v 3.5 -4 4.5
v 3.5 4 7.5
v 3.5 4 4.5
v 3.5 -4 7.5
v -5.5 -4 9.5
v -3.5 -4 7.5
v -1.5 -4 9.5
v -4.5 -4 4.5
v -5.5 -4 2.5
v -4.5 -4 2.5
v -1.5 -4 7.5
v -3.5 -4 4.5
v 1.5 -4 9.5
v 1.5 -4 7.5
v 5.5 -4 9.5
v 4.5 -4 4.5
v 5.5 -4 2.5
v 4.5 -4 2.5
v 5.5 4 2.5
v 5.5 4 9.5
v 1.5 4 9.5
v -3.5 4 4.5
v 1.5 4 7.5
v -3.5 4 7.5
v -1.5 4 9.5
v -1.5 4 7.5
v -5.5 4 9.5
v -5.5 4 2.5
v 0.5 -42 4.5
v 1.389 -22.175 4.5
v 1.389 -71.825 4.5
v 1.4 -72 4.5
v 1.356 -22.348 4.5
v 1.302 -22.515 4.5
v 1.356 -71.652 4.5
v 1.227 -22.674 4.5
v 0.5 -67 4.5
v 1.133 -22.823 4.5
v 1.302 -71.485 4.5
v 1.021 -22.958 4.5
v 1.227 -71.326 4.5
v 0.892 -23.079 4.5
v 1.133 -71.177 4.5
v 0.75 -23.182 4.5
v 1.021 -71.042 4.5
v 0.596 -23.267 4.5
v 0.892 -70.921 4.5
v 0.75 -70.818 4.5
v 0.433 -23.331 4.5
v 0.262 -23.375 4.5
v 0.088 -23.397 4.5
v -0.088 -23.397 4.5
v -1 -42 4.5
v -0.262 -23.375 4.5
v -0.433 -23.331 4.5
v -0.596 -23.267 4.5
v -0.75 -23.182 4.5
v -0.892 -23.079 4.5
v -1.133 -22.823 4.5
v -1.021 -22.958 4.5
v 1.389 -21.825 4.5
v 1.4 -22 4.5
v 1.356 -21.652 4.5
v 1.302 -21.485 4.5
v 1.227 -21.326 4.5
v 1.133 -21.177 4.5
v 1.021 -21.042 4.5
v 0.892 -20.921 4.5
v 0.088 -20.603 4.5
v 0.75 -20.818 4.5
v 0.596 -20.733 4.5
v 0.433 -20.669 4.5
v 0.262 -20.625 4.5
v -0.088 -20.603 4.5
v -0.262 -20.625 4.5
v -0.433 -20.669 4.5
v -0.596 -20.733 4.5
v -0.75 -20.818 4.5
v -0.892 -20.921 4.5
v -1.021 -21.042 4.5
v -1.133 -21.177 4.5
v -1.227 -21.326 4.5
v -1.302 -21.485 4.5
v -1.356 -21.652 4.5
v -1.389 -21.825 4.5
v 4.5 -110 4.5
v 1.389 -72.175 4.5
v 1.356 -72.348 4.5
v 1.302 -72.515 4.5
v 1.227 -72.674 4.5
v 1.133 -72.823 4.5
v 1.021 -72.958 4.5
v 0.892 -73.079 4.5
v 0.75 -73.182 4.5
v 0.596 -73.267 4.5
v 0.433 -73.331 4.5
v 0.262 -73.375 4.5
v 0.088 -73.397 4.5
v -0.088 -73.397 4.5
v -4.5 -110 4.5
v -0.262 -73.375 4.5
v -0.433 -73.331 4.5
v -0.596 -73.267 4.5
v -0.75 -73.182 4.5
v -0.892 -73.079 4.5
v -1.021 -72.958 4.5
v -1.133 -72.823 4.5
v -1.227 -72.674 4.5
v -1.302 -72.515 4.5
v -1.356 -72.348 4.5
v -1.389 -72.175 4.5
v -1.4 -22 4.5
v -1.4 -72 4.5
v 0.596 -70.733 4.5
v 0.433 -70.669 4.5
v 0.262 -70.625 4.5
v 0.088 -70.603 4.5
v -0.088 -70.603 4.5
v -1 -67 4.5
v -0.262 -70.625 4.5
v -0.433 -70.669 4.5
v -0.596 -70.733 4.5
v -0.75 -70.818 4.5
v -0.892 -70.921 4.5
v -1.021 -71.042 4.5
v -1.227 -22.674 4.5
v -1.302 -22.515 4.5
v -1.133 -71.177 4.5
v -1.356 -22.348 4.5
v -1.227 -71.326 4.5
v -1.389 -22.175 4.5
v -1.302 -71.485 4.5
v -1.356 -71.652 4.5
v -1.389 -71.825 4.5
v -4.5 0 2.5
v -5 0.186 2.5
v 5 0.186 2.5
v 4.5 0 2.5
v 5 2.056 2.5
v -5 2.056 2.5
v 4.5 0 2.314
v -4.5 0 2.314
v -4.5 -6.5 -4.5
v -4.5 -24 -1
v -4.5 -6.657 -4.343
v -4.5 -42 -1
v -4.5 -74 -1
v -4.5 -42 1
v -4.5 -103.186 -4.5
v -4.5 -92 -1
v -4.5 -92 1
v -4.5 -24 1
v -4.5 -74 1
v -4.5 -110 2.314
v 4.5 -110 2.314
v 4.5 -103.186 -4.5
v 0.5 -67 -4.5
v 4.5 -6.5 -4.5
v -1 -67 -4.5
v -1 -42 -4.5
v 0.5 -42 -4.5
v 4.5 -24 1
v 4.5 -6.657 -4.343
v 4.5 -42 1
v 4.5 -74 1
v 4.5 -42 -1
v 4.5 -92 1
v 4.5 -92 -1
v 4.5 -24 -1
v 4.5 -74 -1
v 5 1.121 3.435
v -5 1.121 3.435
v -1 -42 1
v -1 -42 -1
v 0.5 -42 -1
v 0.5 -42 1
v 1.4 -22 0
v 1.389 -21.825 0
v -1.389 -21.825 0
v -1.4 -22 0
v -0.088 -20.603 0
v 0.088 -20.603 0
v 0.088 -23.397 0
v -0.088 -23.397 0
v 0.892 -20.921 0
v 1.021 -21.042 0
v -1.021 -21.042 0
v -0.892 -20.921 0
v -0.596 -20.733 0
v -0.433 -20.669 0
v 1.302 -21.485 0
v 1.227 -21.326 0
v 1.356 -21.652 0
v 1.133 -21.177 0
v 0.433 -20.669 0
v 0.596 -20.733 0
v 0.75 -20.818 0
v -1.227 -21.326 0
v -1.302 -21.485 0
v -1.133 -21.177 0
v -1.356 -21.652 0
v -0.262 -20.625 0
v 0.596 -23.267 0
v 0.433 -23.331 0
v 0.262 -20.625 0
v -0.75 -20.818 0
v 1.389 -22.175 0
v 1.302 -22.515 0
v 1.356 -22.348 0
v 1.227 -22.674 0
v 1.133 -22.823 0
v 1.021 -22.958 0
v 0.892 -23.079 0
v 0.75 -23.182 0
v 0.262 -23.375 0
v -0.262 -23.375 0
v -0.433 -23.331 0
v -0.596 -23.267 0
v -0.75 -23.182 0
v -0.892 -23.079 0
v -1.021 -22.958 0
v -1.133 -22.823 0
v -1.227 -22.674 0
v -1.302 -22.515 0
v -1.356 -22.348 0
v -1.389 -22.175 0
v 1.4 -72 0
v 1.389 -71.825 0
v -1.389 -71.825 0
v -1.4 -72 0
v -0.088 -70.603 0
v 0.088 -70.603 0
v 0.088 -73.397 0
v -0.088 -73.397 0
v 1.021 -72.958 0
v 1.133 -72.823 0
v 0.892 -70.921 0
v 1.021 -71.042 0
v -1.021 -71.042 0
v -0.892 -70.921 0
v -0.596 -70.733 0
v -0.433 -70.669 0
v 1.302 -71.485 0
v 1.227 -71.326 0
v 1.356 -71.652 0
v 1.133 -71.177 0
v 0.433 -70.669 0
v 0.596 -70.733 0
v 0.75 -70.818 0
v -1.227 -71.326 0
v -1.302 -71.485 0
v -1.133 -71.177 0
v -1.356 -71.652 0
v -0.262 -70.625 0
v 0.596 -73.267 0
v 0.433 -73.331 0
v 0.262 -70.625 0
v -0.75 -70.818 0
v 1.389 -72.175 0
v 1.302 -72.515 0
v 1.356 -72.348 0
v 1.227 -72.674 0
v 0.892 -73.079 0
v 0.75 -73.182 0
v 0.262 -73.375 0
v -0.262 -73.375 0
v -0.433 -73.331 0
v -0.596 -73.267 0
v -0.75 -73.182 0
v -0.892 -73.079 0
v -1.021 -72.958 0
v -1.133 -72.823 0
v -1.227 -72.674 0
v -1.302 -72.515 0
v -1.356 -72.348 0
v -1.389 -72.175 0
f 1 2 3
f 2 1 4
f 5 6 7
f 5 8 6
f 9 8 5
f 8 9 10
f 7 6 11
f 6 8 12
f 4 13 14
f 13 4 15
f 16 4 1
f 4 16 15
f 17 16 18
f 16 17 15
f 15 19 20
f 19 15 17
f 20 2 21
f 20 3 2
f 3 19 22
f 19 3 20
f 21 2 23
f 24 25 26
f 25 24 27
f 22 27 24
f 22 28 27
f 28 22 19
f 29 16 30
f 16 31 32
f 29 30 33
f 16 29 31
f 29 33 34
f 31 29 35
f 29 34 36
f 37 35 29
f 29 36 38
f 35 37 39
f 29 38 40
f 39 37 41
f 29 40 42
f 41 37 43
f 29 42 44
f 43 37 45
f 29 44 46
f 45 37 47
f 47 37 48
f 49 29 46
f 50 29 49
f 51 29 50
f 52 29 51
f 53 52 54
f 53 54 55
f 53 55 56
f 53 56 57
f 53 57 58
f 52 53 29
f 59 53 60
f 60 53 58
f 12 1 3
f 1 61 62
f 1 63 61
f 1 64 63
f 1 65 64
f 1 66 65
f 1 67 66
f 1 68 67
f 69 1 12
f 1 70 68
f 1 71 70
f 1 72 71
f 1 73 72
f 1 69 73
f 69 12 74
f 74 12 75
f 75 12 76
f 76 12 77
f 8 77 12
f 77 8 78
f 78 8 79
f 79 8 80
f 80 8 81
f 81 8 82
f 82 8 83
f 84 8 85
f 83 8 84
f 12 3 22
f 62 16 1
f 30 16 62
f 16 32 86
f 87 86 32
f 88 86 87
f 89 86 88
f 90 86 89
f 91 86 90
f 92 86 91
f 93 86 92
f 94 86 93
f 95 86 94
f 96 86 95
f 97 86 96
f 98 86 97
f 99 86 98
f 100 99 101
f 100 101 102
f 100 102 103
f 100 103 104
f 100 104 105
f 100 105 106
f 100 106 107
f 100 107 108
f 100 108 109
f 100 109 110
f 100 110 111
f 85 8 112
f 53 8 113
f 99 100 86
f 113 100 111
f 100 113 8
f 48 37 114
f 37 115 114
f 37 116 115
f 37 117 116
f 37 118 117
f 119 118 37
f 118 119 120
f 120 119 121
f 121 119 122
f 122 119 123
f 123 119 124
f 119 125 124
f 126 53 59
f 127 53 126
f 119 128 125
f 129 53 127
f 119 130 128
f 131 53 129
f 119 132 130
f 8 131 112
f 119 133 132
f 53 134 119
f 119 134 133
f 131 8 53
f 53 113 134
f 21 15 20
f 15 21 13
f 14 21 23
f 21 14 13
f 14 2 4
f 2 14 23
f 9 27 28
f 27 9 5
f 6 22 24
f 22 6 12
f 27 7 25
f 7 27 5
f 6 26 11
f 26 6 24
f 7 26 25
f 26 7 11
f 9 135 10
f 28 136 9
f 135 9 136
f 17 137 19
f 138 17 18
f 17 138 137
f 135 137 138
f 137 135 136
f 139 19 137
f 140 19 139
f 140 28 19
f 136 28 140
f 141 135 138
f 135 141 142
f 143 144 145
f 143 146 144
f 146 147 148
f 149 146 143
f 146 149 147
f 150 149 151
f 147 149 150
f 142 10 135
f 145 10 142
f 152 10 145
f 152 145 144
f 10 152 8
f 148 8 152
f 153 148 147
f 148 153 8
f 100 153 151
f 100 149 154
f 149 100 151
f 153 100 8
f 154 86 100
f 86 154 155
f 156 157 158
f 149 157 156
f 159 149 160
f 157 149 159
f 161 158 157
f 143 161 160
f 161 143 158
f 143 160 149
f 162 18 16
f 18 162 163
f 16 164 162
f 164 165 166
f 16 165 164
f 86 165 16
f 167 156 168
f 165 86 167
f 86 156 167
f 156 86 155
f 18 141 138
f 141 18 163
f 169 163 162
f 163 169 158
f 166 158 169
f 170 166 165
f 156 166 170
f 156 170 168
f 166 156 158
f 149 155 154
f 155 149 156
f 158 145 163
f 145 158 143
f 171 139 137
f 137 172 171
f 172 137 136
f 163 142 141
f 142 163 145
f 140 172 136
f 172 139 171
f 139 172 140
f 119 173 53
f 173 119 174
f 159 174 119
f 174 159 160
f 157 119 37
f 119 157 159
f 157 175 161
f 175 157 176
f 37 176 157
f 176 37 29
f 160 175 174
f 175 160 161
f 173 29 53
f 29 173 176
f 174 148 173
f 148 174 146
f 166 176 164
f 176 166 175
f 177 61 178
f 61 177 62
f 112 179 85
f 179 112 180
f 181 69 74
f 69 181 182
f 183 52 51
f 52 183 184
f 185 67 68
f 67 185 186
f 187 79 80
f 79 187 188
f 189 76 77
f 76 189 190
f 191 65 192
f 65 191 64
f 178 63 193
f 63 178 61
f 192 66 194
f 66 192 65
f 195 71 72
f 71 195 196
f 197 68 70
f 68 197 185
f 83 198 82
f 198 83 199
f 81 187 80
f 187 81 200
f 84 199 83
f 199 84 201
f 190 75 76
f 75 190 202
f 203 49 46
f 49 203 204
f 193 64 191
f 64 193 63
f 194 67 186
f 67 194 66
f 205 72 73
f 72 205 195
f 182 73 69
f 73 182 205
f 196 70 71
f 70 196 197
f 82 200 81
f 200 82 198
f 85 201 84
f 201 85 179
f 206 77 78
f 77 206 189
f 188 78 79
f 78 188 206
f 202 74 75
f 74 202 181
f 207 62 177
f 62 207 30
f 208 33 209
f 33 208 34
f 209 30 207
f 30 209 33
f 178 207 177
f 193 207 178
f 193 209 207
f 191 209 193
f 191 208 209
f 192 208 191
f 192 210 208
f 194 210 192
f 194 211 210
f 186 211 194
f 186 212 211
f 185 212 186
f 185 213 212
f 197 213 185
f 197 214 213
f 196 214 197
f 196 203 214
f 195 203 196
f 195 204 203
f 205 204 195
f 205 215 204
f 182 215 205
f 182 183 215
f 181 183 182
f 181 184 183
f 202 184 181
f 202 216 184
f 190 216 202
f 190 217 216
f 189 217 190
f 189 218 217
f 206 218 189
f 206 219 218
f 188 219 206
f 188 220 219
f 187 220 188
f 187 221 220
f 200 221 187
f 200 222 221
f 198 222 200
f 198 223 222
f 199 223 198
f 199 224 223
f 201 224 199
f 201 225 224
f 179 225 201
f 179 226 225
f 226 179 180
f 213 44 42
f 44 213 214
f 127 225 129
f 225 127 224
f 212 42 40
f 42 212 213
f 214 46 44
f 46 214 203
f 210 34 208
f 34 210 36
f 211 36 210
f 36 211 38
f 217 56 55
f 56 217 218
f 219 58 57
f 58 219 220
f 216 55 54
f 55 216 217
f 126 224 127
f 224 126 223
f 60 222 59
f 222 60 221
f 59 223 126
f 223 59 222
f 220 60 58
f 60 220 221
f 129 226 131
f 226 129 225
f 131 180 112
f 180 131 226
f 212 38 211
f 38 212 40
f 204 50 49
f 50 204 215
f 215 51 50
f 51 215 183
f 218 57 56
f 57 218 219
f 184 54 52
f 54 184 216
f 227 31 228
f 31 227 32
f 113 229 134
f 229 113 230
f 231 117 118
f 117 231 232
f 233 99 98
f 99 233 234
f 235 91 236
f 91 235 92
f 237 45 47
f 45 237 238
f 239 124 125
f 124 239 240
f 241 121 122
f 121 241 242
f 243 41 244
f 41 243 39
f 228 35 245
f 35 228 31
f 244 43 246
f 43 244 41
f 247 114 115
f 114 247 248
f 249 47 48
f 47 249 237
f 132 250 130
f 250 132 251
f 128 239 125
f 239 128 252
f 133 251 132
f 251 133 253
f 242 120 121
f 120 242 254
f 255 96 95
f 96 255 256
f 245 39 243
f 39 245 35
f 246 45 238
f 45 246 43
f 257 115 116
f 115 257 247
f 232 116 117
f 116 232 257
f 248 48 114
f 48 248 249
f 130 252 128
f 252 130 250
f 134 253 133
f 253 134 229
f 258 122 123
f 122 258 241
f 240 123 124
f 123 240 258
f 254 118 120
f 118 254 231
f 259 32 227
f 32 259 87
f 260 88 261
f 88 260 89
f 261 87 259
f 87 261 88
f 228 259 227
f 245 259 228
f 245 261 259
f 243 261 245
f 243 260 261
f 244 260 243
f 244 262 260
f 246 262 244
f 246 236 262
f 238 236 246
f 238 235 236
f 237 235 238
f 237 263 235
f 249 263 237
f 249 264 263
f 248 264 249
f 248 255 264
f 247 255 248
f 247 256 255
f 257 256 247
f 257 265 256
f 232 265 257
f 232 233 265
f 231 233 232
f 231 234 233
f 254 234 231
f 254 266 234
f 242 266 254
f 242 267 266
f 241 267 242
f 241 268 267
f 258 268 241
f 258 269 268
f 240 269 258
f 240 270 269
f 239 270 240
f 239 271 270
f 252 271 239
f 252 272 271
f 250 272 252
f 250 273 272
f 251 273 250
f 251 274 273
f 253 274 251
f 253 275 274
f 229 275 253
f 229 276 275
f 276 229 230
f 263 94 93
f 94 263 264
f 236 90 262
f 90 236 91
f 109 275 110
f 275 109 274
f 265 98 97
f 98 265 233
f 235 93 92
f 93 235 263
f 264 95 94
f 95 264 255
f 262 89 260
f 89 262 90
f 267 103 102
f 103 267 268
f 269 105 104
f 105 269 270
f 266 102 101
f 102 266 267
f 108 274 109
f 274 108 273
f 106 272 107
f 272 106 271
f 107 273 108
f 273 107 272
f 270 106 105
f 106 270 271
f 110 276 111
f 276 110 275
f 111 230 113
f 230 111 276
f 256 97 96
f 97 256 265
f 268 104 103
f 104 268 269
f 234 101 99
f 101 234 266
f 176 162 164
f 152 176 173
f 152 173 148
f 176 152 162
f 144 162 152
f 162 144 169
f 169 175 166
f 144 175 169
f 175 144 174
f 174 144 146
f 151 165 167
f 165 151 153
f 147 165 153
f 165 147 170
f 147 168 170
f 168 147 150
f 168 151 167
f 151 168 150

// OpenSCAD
$fn=50;

KEEL_W=9.0;
KEEL_H=9.0;
KEEL_L=110;

difference() {
    union() {
        // measuring posts
        //translate([0,  MOUNT_HOLE_OFFSET+15, 0]) cylinder(h=7, d=1.0);            
        //translate([0, MOUNT_HOLE_OFFSET+30, 0]) cylinder(h=7, d=1.0);
        
        // keel
        rotate([90,0,0])
        linear_extrude(KEEL_L) square([KEEL_W, KEEL_H], center=true); 
        // cable clamp
        translate([1.5, 4, 4.5])
        rotate([90, 0, 0])
        union(){
            // Vertical arm of the C-clamp 2
            translate([2.0, 0, 0]) cube([2, 5, 8]);
            // Horizontal arm of the C-clamp
            rotate([90, 0, 0])
            translate([0, 0, -5]) cube([2, 8, 2]);
            // Vertical arm of the C-clamp 1
            translate([-7, 0, 0]) cube([2, 5, 8]);
            // Horizontal arm of the C-clamp
            rotate([90, 0, 0])
            translate([-5.0, 0,-5]) cube([2, 8, 2]);
            // clamp bed
            rotate([90, 0, 0])
            translate([-7.0, 0,-0]) cube([11, 8, 2]);
        }
    }
    
    // front of keel slope
    translate([-5, -KEEL_L-6, -3])
    rotate([-45, 0, 0])
    //(x, z, y)
    cube([10, 11, 8]); 
    
    // rear of keel slope
    translate([-5, -1, -10])
    rotate([45, 0, 0])
    //(x, z, y)
    cube([10, 11, 8]);  
 
    //center cutout - vent
    translate([-1.0, -42.0, -5.0])
    rotate([90,0,0])
    //y, z, x
    cube([1.5, 10, 25]);
    
    // screw holes
    translate([0, -22, 0]) cylinder(h=5, d=2.8); 
    translate([0.0, -72, 0]) cylinder(h=5, d=2.8);   

    // thru slots for straps
    translate([-7.0, -42,-1]) cube([14, 18, 2]);       
    translate([-7.0, -92,-1]) cube([14, 18, 2]);
}
